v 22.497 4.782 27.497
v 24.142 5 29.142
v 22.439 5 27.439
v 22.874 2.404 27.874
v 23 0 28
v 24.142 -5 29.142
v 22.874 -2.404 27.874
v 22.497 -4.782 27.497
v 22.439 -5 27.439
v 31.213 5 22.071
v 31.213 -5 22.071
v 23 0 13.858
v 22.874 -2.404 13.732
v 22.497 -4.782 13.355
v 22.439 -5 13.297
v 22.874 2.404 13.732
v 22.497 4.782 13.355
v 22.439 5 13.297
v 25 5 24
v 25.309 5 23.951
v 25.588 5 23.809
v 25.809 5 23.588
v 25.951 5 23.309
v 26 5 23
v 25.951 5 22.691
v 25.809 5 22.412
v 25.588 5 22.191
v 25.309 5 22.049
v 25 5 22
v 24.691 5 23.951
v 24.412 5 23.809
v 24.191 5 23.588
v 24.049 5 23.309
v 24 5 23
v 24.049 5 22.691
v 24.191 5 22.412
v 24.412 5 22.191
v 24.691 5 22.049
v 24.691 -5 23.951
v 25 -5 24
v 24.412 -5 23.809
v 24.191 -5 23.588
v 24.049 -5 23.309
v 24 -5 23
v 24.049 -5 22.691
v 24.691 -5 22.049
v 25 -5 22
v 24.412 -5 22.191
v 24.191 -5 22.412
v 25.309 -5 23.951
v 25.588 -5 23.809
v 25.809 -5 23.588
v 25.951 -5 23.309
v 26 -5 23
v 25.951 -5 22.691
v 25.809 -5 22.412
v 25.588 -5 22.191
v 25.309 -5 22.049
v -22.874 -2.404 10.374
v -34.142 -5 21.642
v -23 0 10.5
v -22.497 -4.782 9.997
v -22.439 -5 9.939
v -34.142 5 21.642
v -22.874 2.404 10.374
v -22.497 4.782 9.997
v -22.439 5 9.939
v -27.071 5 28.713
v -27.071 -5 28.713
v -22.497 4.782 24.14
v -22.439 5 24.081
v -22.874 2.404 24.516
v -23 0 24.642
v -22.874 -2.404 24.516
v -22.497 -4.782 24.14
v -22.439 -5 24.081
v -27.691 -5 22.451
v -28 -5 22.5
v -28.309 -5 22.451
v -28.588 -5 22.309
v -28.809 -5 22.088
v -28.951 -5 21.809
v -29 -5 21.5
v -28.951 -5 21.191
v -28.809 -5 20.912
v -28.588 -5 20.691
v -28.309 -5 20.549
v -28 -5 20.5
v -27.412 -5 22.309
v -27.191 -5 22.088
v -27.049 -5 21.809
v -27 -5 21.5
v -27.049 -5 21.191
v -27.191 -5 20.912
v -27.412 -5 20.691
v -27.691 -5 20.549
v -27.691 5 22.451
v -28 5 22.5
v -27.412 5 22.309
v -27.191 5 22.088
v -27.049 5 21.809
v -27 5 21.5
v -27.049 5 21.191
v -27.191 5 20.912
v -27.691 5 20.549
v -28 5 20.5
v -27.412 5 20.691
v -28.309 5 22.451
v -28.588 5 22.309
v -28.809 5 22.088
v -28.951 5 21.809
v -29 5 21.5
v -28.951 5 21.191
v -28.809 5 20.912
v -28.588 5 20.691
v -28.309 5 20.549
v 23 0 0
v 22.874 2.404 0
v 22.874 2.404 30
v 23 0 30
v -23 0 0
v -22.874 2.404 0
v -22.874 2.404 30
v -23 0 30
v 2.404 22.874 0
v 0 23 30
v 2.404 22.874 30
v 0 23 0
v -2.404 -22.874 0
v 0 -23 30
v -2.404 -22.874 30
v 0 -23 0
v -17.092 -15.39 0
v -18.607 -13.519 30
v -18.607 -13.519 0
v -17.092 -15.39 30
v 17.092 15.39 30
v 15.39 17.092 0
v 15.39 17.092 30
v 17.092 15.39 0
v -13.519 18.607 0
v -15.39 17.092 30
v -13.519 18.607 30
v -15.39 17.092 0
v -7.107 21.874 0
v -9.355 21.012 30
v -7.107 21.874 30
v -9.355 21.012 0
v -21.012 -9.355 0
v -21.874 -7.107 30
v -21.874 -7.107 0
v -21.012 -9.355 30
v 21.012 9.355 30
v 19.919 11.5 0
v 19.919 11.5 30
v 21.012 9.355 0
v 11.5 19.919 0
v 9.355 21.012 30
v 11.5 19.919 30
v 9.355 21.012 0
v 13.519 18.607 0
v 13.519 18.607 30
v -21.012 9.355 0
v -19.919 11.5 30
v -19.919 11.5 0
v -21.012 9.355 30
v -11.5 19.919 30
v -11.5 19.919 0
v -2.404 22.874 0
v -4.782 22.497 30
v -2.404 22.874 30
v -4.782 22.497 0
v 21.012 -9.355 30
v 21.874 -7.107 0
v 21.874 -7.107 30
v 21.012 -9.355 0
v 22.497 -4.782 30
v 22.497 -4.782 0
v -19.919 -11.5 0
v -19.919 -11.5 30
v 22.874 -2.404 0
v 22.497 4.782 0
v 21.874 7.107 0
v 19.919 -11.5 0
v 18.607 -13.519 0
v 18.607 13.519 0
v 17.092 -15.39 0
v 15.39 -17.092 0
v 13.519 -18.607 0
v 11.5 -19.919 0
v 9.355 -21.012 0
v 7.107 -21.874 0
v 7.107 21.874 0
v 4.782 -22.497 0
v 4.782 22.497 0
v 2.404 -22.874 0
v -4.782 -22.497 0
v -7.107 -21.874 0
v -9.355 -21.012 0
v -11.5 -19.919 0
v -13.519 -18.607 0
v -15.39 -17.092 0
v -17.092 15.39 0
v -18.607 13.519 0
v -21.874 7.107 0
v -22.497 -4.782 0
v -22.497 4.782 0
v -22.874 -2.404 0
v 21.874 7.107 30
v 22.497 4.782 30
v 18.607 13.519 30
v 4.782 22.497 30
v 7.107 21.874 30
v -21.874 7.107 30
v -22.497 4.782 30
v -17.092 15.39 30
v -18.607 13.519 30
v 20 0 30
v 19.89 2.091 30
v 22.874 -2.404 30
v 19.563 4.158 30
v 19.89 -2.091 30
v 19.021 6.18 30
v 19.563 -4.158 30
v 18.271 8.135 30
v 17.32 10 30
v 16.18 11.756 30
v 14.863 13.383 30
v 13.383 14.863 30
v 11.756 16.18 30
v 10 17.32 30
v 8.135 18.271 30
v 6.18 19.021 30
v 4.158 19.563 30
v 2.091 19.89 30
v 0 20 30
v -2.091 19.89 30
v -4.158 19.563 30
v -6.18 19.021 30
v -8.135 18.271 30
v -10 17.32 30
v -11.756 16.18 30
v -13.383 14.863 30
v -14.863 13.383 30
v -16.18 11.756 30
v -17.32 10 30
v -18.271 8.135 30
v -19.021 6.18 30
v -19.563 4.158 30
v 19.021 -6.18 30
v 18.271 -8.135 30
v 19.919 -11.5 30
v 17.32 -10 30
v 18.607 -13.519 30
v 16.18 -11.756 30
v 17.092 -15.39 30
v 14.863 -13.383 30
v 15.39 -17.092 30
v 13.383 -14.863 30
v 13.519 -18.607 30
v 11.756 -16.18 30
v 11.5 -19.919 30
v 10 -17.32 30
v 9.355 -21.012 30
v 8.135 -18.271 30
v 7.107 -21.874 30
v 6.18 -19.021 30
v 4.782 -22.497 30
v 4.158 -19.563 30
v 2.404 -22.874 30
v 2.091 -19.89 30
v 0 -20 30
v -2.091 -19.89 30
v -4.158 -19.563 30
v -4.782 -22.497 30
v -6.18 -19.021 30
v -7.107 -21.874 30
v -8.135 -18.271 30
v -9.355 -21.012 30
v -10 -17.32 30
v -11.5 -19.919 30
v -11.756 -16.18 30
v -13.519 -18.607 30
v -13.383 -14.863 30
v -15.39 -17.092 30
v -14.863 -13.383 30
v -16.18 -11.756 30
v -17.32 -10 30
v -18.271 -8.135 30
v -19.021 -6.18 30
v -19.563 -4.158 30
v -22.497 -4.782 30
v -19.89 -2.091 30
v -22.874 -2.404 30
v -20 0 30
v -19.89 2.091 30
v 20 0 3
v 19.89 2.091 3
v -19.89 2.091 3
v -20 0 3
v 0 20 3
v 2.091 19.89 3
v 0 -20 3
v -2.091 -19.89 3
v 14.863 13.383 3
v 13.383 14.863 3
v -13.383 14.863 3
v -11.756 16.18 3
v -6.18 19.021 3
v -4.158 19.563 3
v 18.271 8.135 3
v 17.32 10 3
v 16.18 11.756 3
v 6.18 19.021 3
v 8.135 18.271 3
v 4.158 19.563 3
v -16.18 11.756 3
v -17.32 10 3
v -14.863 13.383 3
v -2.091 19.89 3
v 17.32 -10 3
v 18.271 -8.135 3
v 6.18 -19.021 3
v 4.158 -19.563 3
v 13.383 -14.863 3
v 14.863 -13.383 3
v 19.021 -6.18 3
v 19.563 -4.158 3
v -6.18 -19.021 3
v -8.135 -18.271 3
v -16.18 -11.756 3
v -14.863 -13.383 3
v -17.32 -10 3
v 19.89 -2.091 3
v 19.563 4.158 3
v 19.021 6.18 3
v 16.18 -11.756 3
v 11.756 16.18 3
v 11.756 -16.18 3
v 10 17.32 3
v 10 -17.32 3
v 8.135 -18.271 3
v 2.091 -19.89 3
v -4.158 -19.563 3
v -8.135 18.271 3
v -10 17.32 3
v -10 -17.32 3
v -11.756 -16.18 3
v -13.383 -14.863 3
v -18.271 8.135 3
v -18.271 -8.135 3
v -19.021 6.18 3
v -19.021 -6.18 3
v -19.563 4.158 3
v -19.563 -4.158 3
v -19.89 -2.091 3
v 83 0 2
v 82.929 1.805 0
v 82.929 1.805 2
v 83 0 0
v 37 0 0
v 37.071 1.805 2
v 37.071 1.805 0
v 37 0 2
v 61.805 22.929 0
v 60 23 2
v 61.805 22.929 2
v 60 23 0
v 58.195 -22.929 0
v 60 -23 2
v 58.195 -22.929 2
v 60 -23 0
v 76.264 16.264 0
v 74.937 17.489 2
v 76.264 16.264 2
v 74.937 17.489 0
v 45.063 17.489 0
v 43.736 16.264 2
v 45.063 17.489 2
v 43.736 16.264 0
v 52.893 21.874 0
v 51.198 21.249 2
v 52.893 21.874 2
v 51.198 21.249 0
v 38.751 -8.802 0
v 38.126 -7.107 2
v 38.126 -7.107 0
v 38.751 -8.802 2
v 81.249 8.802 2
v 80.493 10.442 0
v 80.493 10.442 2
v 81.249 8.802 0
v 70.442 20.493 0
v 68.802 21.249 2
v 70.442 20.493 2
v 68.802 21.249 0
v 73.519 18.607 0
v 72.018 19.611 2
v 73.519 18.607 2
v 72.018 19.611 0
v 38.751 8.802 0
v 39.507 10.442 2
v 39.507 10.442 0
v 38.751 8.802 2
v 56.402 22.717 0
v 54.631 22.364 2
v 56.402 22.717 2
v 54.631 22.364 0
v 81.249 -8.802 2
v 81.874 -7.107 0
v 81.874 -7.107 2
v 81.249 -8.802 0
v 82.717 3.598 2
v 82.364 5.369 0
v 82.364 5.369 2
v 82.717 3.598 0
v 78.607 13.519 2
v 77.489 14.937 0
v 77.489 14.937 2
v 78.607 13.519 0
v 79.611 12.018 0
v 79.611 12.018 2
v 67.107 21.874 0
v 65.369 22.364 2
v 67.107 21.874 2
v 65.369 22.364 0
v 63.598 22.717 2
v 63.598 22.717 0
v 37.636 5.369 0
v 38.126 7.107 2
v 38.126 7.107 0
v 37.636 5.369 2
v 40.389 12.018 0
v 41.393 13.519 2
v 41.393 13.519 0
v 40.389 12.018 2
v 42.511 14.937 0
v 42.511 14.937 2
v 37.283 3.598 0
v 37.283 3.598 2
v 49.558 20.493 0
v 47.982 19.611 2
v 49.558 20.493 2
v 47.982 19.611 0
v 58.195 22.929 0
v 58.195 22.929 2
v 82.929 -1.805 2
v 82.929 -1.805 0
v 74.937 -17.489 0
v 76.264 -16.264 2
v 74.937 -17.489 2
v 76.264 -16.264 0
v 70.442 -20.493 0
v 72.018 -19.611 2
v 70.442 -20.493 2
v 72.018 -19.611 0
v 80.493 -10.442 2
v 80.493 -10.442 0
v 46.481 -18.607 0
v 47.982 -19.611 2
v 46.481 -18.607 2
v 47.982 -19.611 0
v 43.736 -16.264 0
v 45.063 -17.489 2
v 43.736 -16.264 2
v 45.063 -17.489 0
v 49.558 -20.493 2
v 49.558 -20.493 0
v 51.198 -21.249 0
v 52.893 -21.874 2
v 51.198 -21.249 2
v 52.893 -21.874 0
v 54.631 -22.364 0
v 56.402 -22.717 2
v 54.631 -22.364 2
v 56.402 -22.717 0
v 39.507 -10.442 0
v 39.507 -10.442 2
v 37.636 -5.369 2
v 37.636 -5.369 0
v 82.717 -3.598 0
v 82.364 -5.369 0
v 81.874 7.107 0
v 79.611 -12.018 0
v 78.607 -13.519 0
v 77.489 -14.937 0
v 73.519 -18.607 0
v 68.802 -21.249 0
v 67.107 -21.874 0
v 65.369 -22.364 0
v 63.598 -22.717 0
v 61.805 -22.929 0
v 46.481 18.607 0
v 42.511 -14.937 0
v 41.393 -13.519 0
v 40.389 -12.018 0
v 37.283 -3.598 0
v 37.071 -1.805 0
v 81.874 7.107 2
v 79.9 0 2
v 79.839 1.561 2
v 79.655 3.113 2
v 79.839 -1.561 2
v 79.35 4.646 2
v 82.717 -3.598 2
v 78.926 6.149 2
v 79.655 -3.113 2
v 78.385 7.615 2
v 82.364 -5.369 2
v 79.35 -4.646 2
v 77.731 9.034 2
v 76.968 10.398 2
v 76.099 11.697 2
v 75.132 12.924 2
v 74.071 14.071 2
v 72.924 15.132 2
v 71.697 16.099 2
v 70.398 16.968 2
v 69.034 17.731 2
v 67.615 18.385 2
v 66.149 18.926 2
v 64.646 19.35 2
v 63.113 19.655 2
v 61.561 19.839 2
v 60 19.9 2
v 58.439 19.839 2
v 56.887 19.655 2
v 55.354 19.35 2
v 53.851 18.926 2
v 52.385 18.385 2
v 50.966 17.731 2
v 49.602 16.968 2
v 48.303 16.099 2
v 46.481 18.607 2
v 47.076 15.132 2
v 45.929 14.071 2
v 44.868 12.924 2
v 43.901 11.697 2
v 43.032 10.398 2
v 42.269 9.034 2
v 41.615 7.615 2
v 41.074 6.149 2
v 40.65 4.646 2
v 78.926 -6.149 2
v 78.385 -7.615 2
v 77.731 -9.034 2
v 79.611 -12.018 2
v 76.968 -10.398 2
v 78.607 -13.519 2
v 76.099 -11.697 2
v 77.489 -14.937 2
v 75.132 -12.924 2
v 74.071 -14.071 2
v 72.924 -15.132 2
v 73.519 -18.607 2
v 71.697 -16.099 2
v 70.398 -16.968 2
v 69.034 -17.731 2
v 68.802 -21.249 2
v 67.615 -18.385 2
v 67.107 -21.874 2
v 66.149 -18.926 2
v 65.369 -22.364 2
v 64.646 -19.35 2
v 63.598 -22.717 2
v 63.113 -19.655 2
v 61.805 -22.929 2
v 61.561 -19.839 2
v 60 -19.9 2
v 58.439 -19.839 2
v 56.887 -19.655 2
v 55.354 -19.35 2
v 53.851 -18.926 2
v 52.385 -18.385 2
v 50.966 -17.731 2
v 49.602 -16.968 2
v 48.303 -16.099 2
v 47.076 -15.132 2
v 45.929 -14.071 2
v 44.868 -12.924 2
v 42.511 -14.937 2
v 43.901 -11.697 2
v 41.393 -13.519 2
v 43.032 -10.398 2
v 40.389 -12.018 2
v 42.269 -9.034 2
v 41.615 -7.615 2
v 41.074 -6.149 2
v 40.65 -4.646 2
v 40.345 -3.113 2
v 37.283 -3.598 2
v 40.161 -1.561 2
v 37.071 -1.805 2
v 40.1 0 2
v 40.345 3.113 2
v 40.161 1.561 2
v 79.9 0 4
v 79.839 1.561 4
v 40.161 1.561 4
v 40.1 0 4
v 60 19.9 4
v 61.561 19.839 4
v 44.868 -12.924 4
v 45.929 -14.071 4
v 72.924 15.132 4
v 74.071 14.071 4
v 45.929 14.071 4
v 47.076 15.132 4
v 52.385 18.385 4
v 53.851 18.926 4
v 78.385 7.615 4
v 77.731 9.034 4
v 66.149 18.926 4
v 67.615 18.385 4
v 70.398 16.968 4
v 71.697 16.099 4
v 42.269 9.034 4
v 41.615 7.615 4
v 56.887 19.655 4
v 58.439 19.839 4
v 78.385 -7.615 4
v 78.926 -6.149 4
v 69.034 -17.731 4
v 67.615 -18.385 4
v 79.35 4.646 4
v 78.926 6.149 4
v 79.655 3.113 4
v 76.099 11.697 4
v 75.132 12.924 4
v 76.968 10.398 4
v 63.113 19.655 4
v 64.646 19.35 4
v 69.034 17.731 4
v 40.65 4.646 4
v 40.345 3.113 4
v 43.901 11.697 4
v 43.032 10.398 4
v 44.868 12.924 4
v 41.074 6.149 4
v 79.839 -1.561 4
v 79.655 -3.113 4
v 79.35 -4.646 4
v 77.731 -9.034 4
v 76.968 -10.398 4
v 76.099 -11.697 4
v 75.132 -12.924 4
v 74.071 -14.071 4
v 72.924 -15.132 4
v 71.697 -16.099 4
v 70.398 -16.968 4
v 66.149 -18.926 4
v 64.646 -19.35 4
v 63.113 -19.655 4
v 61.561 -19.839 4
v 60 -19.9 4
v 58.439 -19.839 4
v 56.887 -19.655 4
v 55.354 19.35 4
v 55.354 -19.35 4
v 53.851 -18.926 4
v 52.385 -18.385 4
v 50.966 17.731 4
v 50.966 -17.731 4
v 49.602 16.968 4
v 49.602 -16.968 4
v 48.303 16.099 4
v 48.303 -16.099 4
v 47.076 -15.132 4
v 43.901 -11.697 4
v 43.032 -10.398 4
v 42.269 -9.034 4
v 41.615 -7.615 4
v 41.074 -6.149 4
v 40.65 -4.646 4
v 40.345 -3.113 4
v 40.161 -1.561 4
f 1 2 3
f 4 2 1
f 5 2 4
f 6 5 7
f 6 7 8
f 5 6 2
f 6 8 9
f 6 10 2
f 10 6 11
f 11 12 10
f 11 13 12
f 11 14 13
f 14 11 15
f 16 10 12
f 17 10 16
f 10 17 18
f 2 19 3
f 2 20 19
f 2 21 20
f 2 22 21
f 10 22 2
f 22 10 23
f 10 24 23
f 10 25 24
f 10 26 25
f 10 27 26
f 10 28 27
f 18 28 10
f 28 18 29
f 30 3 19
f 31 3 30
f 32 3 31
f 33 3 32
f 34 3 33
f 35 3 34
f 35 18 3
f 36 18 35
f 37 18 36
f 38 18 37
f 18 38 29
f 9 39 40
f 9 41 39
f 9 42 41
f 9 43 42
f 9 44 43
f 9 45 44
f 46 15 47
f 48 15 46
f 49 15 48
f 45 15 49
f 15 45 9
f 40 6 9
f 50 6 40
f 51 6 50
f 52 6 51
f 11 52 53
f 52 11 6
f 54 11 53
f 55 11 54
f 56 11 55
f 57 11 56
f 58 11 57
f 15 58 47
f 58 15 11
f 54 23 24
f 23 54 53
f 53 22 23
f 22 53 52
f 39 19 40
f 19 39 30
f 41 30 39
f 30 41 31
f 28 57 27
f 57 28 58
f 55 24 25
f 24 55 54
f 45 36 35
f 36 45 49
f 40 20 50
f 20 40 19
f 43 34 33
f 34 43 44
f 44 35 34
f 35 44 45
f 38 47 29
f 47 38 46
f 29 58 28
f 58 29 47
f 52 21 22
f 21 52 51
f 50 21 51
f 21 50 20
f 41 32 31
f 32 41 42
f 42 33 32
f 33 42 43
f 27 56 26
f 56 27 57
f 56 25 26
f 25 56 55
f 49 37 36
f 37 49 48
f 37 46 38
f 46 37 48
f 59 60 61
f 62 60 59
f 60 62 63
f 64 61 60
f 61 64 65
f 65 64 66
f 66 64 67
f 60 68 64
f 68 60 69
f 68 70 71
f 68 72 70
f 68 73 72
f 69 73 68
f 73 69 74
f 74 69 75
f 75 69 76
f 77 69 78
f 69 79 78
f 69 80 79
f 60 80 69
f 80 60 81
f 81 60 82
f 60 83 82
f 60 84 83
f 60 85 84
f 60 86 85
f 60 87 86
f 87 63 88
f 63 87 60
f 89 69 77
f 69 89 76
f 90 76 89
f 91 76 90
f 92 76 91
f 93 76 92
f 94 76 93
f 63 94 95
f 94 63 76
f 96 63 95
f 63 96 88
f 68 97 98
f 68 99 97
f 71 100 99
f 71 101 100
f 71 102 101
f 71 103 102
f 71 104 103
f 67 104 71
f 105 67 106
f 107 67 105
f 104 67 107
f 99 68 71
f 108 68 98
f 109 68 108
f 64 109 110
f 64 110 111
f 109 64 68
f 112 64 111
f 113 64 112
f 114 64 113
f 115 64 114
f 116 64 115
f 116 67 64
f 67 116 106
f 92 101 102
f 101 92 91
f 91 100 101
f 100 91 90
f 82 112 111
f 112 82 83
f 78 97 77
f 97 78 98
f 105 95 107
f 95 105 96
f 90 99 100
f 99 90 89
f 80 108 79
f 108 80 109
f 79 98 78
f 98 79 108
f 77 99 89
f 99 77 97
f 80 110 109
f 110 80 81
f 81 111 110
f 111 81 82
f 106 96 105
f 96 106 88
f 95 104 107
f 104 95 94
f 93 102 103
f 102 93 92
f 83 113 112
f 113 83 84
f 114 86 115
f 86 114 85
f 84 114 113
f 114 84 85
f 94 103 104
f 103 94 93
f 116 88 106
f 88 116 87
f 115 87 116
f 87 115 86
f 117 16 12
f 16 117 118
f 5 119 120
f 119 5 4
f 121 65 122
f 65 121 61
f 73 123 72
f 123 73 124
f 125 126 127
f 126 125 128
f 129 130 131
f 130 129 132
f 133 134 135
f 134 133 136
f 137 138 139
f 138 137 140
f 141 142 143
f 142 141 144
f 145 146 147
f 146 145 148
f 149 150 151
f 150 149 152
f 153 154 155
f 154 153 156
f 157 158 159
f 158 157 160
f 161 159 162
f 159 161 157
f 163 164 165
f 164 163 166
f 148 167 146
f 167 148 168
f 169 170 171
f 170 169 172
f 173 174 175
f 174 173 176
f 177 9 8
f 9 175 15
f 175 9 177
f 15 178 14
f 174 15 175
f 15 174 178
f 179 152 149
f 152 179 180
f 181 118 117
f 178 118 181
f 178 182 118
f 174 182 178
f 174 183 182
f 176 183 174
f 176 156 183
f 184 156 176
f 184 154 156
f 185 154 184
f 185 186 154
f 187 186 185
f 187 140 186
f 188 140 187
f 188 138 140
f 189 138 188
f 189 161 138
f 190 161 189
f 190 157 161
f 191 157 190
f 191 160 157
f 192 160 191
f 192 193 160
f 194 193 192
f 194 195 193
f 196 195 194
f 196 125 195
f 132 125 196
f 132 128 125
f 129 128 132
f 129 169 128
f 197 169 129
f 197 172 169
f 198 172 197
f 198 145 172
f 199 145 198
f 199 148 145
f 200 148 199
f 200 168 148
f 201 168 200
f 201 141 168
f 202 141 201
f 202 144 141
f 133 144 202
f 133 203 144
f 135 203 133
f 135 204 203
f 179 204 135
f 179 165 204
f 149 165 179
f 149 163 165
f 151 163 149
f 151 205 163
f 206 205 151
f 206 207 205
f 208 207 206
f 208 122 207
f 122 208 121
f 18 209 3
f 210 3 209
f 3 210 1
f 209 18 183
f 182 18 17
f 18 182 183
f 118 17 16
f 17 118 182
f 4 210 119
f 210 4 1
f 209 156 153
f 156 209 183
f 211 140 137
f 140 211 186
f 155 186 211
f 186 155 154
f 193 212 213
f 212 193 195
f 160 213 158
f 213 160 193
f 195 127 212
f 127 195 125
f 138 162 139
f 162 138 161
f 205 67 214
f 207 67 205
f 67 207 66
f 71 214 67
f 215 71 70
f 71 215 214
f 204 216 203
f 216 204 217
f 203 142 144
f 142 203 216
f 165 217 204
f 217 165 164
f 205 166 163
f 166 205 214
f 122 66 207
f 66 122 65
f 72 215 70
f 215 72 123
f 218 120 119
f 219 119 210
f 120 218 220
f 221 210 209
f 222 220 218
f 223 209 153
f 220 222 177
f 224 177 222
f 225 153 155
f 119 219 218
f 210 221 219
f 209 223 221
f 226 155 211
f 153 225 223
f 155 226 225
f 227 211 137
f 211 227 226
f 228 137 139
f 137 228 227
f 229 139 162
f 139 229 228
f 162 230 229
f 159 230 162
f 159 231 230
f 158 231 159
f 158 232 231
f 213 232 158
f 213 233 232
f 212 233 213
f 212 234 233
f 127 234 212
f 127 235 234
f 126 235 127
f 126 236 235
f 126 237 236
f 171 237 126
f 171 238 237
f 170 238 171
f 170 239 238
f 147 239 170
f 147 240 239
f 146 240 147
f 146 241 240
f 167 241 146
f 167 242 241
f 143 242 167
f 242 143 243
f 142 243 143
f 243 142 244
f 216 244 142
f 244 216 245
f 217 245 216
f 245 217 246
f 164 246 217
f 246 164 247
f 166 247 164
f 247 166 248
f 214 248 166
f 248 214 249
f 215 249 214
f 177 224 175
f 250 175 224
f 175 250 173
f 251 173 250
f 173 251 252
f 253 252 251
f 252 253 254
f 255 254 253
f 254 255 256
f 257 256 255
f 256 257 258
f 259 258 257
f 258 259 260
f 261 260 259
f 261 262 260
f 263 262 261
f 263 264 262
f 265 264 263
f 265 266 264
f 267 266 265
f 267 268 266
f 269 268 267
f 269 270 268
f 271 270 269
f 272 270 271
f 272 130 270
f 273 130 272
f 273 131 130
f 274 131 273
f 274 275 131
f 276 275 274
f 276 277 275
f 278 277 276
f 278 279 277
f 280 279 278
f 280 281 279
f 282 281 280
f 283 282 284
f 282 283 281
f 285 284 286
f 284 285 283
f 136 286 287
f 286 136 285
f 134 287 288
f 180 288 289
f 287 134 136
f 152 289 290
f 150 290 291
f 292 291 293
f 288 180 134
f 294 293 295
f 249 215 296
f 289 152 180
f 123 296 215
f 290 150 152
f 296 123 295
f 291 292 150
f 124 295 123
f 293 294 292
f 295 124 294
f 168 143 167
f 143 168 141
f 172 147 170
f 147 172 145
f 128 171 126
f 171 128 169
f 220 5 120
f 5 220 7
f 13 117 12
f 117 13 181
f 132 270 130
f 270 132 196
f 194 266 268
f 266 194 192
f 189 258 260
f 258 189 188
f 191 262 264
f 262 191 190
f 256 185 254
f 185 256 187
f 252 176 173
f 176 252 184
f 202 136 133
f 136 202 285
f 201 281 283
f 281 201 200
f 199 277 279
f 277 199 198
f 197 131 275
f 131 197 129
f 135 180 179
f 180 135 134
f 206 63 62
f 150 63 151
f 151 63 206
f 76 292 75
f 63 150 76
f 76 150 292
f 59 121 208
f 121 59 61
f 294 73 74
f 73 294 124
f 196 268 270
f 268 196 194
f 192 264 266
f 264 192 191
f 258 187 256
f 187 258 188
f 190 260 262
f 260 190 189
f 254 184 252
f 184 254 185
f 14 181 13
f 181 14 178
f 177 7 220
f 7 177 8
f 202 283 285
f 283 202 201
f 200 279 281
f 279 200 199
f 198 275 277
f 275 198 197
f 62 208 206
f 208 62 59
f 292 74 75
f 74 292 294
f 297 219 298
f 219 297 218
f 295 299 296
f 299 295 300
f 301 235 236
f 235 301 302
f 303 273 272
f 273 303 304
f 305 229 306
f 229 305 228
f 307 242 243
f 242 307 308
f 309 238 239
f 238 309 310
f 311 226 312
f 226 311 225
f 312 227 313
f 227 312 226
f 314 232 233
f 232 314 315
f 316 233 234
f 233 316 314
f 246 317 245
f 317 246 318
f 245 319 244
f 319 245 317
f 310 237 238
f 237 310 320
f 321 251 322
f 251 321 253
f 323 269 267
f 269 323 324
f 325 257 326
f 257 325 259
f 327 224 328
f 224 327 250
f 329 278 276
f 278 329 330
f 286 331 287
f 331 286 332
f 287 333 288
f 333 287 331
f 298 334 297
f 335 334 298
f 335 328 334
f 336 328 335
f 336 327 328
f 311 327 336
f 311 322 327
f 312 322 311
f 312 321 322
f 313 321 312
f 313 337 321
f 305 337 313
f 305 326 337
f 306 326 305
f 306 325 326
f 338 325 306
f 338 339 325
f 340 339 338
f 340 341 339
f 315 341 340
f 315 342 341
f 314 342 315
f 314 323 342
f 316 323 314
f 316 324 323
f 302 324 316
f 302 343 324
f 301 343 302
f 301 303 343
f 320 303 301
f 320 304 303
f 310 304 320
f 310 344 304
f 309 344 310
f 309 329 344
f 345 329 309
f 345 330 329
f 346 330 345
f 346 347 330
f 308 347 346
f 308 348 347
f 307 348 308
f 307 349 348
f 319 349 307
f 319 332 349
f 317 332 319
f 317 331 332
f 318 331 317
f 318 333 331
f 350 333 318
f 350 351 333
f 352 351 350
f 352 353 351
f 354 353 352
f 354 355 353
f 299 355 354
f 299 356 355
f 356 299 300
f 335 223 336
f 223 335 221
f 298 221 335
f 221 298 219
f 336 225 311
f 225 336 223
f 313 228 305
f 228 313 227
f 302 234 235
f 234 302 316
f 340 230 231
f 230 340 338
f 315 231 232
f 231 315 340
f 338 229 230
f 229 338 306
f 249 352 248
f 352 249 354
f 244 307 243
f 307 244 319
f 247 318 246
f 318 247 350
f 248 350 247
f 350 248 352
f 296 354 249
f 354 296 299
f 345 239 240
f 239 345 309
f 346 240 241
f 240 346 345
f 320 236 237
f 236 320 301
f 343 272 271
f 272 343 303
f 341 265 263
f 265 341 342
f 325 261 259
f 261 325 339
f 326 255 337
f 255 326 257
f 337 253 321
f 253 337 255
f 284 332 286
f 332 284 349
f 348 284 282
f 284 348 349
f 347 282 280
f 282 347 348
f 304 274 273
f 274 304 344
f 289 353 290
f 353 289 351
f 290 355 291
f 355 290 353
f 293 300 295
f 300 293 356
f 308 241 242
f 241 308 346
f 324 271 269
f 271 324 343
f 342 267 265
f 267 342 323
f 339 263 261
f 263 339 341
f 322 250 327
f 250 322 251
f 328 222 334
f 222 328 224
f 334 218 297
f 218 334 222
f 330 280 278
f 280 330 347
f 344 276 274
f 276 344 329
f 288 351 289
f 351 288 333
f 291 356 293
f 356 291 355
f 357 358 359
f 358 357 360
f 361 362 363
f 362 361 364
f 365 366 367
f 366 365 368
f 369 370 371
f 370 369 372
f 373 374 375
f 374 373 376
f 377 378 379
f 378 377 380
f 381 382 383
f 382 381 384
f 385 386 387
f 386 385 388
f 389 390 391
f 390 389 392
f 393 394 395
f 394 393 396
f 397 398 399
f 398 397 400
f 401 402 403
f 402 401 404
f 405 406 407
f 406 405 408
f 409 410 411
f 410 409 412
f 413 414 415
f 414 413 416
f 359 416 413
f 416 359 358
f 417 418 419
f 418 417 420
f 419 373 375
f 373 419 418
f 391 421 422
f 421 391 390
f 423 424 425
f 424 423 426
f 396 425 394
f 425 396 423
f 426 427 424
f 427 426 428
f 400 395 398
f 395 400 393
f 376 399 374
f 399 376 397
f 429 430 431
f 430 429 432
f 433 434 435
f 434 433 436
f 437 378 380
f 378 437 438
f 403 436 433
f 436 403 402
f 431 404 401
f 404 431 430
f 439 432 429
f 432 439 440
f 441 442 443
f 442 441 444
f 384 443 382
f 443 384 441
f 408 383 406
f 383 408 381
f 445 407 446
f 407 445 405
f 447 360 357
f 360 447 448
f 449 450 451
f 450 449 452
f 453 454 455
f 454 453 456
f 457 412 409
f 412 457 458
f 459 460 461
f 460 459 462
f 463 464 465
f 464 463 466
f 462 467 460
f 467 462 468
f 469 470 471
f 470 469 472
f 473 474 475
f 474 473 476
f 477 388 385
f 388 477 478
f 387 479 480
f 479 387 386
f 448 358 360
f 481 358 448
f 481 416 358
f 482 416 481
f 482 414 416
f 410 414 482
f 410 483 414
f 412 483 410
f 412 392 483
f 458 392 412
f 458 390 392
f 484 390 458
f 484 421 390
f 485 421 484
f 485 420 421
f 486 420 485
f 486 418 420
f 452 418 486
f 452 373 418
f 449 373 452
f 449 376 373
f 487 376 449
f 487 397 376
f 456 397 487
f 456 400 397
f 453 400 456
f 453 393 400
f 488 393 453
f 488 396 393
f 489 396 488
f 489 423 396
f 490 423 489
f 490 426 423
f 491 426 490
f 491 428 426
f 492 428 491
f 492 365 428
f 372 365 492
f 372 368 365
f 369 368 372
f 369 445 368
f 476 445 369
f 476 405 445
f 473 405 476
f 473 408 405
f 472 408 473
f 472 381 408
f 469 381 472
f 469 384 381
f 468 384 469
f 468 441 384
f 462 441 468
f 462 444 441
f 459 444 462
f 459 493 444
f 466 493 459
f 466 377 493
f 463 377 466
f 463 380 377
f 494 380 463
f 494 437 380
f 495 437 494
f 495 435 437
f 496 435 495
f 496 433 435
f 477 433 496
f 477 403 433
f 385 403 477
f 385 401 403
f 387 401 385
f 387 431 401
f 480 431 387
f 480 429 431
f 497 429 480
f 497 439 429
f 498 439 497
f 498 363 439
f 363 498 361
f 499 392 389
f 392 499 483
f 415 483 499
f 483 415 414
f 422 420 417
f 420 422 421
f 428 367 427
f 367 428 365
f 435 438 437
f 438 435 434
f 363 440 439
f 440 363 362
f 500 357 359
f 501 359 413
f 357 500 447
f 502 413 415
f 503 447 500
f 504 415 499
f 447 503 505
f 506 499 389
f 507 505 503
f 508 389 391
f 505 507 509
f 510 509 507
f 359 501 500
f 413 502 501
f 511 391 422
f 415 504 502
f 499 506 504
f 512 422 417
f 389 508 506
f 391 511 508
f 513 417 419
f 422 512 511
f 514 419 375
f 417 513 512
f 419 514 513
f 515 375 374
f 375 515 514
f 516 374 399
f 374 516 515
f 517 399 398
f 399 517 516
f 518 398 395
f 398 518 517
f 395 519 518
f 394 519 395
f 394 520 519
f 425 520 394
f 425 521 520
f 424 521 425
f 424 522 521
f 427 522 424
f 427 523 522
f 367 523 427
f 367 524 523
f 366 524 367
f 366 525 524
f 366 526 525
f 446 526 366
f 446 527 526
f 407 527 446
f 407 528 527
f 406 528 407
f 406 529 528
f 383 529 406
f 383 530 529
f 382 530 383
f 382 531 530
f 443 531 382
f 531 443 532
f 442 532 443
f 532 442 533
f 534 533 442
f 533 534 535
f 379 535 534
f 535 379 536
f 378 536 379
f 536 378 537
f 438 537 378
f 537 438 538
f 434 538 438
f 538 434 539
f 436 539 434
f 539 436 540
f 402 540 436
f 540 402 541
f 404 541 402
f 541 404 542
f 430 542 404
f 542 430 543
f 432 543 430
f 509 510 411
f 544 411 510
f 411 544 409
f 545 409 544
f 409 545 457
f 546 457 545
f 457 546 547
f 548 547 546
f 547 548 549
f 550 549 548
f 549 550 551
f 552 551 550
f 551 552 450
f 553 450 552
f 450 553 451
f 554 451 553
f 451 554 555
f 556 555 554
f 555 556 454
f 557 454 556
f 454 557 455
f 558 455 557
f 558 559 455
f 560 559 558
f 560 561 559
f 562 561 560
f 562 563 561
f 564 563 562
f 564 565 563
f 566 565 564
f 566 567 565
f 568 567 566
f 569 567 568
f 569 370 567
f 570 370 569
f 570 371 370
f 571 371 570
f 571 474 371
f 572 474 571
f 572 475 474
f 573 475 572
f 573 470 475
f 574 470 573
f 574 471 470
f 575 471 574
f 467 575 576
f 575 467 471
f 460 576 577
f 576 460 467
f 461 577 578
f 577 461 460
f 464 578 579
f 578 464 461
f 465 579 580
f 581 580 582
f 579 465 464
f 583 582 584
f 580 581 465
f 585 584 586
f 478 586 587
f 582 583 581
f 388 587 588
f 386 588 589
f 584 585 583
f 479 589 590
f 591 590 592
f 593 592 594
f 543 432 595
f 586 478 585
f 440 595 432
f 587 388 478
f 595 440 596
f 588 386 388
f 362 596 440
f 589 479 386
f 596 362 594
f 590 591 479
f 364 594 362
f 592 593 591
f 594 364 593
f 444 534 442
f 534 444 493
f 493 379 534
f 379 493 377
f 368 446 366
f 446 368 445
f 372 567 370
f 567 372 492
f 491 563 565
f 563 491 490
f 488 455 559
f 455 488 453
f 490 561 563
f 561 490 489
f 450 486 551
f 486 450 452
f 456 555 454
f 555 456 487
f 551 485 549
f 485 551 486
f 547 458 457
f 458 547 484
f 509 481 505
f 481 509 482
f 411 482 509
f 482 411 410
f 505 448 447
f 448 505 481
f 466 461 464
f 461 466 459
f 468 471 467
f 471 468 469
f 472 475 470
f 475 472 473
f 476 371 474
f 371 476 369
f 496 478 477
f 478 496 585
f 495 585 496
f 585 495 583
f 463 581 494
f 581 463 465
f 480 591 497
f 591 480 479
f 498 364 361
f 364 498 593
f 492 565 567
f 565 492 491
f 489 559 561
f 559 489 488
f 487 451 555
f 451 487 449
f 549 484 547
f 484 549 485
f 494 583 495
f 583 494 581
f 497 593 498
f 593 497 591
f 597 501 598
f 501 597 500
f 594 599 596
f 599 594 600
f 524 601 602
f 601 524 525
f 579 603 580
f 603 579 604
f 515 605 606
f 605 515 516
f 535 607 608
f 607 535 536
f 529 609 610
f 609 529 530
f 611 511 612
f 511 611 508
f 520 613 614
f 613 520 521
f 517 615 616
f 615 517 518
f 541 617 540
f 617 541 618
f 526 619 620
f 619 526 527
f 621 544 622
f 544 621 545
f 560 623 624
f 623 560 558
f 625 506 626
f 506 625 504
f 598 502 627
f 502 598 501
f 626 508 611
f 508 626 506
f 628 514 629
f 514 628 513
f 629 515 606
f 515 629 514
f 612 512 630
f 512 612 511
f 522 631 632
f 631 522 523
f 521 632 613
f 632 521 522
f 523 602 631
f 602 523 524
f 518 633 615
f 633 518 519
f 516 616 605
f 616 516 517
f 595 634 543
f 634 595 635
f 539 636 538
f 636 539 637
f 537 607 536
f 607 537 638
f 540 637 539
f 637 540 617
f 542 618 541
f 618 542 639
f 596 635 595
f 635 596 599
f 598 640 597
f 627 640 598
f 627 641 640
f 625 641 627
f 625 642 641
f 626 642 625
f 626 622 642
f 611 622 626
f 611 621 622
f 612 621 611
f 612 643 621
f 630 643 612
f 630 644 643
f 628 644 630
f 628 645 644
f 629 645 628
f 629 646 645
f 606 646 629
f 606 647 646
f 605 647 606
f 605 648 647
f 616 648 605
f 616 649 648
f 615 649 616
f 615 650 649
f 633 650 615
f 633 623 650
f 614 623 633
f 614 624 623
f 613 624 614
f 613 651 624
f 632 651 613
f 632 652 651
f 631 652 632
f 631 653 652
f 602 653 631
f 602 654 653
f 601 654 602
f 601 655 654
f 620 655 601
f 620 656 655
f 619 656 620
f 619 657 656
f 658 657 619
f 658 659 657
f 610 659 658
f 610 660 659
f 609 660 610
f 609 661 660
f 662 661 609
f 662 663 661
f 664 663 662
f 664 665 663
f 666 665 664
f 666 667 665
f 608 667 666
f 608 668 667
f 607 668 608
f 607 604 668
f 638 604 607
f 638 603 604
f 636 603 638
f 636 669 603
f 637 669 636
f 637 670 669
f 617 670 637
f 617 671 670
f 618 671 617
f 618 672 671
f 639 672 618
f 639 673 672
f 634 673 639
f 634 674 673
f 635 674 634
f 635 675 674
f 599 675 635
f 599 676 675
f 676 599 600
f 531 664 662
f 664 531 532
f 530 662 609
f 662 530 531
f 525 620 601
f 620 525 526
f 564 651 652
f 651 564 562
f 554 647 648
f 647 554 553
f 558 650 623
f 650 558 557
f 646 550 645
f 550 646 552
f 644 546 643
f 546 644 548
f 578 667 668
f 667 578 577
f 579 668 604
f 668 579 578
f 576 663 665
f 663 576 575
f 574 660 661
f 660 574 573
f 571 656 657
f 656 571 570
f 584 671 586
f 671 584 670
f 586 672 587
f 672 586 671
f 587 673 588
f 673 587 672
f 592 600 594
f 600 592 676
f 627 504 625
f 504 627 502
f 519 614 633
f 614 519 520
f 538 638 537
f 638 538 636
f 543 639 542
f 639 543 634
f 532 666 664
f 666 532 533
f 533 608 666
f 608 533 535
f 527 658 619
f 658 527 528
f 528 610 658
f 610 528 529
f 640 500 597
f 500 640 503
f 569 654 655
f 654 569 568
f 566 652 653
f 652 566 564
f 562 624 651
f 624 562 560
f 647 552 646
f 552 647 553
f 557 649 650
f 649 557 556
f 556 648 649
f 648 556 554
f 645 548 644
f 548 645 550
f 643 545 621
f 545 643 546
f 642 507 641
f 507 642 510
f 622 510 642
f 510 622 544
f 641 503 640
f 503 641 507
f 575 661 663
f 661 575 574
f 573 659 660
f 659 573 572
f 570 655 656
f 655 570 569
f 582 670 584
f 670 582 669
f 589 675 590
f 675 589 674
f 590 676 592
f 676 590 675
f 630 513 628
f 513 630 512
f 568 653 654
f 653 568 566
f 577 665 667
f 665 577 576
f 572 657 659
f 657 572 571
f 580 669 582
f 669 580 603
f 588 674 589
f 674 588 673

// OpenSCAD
//radio interior
ri = 20;
//espesor
e = 3;
//altura
a=30;
//caixa
module caixa(){
    difference(){
        union(){
        cylinder (r = ri+e, h= a, $fn=60);
            translate ([ri-10,-5,a/2]) difference(){
rotate ([0,45,0]) cube ([10,10,20]);
translate([15,13,8]) rotate ([90,0,0]) cylinder(r=1, h=16, $fn=20);
}
translate ([-ri,-5,a/4]) difference(){
rotate ([0,-45,0]) cube ([10,10,20]);
translate([-8,13,14]) rotate ([90,0,0]) cylinder(r=1, h=16, $fn=20);
}

}
        translate([0,0,e]) cylinder (r = ri, h= a, $fn=60);}
}

module tapa() {
cylinder(r=ri+e,h=2,$fn=80);
cylinder(r=ri-0.1,h=4,$fn=80);
}

caixa();
translate([60,0,0]) tapa();
